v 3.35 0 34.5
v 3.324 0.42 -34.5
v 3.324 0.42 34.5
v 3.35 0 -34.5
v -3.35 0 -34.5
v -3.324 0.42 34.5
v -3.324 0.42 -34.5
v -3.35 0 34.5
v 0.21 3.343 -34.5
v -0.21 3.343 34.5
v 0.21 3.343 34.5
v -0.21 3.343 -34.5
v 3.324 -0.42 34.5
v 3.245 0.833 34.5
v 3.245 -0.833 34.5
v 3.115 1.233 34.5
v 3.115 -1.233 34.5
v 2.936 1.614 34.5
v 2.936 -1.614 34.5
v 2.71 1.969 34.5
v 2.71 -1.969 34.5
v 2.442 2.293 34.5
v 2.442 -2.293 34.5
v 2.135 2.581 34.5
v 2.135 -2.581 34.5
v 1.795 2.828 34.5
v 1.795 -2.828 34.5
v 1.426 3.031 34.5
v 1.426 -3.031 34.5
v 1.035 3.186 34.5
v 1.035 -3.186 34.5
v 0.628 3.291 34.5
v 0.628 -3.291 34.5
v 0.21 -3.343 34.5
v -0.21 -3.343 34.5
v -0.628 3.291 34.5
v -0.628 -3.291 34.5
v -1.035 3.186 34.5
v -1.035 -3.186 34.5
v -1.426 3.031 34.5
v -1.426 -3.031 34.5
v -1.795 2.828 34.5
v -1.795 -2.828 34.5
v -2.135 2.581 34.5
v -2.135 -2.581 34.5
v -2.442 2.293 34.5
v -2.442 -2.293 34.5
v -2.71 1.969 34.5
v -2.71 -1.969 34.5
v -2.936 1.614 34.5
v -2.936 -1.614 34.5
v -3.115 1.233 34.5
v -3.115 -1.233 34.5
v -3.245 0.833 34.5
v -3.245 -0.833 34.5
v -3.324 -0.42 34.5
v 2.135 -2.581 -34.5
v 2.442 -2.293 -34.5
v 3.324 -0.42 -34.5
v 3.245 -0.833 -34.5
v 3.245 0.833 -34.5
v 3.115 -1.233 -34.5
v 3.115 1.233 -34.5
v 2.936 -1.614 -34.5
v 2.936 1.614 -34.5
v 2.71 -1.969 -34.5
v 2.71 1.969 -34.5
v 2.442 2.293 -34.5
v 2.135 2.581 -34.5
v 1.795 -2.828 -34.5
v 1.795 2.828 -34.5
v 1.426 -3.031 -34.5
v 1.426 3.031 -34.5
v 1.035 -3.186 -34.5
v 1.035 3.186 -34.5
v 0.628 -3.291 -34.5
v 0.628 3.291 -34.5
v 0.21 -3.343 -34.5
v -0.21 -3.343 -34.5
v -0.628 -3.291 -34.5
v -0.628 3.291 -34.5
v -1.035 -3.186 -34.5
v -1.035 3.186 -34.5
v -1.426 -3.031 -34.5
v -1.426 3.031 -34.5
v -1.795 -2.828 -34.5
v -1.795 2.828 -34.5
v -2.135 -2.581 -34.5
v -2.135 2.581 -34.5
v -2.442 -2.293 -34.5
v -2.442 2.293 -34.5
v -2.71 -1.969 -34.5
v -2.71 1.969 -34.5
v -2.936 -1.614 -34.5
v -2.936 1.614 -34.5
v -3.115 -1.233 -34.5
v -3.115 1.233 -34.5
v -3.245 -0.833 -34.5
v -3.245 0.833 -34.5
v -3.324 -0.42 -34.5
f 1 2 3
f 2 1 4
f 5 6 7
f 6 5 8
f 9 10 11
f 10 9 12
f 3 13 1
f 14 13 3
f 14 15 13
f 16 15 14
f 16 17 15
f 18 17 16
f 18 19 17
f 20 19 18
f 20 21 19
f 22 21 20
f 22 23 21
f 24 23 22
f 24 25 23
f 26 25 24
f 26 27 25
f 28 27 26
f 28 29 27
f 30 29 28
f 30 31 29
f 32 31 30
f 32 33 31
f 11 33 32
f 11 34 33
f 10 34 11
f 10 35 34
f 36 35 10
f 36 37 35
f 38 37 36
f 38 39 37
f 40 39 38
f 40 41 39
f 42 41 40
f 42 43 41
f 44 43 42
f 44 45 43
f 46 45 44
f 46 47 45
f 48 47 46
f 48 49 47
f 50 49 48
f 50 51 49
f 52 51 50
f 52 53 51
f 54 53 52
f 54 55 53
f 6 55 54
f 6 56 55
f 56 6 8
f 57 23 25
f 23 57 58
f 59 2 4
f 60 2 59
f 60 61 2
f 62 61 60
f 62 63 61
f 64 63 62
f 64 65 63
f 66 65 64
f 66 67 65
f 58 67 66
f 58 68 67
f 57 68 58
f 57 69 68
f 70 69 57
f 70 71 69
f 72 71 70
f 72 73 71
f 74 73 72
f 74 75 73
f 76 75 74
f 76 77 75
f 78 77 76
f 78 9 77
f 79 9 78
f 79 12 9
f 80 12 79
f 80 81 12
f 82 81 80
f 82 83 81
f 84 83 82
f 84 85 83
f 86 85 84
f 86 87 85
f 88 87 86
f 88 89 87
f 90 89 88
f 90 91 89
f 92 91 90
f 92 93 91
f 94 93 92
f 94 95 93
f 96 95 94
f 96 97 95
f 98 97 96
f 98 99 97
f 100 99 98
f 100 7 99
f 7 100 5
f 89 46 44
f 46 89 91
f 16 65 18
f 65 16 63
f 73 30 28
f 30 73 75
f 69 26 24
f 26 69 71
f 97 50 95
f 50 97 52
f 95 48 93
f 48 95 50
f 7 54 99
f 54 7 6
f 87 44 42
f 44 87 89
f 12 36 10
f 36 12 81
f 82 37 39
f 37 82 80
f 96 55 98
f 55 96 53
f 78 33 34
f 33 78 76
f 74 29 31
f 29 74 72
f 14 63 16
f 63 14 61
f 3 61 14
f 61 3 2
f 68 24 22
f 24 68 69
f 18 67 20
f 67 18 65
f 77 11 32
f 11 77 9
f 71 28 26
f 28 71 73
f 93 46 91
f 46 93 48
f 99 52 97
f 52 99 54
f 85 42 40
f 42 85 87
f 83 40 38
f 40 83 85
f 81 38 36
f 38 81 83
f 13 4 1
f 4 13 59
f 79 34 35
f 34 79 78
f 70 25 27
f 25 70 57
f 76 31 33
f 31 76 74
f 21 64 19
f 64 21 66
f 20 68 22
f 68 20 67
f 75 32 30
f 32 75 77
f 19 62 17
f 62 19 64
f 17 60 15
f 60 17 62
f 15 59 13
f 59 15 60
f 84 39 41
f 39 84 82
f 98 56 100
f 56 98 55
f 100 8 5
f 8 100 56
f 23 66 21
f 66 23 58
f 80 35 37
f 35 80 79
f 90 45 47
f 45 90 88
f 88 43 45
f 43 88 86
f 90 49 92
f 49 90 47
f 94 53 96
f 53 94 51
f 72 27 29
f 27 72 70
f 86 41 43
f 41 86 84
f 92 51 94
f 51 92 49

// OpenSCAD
$fn = 50;


difference() {
	union() {
		translate(v = [0, 0, -34.5000000000]) {
			cylinder(h = 69, r = 3.3500000000);
		}
	}
	union() {
		translate(v = [0, 0, -100.0000000000]) {
			cylinder(h = 200, r = 0);
		}
	}
}
